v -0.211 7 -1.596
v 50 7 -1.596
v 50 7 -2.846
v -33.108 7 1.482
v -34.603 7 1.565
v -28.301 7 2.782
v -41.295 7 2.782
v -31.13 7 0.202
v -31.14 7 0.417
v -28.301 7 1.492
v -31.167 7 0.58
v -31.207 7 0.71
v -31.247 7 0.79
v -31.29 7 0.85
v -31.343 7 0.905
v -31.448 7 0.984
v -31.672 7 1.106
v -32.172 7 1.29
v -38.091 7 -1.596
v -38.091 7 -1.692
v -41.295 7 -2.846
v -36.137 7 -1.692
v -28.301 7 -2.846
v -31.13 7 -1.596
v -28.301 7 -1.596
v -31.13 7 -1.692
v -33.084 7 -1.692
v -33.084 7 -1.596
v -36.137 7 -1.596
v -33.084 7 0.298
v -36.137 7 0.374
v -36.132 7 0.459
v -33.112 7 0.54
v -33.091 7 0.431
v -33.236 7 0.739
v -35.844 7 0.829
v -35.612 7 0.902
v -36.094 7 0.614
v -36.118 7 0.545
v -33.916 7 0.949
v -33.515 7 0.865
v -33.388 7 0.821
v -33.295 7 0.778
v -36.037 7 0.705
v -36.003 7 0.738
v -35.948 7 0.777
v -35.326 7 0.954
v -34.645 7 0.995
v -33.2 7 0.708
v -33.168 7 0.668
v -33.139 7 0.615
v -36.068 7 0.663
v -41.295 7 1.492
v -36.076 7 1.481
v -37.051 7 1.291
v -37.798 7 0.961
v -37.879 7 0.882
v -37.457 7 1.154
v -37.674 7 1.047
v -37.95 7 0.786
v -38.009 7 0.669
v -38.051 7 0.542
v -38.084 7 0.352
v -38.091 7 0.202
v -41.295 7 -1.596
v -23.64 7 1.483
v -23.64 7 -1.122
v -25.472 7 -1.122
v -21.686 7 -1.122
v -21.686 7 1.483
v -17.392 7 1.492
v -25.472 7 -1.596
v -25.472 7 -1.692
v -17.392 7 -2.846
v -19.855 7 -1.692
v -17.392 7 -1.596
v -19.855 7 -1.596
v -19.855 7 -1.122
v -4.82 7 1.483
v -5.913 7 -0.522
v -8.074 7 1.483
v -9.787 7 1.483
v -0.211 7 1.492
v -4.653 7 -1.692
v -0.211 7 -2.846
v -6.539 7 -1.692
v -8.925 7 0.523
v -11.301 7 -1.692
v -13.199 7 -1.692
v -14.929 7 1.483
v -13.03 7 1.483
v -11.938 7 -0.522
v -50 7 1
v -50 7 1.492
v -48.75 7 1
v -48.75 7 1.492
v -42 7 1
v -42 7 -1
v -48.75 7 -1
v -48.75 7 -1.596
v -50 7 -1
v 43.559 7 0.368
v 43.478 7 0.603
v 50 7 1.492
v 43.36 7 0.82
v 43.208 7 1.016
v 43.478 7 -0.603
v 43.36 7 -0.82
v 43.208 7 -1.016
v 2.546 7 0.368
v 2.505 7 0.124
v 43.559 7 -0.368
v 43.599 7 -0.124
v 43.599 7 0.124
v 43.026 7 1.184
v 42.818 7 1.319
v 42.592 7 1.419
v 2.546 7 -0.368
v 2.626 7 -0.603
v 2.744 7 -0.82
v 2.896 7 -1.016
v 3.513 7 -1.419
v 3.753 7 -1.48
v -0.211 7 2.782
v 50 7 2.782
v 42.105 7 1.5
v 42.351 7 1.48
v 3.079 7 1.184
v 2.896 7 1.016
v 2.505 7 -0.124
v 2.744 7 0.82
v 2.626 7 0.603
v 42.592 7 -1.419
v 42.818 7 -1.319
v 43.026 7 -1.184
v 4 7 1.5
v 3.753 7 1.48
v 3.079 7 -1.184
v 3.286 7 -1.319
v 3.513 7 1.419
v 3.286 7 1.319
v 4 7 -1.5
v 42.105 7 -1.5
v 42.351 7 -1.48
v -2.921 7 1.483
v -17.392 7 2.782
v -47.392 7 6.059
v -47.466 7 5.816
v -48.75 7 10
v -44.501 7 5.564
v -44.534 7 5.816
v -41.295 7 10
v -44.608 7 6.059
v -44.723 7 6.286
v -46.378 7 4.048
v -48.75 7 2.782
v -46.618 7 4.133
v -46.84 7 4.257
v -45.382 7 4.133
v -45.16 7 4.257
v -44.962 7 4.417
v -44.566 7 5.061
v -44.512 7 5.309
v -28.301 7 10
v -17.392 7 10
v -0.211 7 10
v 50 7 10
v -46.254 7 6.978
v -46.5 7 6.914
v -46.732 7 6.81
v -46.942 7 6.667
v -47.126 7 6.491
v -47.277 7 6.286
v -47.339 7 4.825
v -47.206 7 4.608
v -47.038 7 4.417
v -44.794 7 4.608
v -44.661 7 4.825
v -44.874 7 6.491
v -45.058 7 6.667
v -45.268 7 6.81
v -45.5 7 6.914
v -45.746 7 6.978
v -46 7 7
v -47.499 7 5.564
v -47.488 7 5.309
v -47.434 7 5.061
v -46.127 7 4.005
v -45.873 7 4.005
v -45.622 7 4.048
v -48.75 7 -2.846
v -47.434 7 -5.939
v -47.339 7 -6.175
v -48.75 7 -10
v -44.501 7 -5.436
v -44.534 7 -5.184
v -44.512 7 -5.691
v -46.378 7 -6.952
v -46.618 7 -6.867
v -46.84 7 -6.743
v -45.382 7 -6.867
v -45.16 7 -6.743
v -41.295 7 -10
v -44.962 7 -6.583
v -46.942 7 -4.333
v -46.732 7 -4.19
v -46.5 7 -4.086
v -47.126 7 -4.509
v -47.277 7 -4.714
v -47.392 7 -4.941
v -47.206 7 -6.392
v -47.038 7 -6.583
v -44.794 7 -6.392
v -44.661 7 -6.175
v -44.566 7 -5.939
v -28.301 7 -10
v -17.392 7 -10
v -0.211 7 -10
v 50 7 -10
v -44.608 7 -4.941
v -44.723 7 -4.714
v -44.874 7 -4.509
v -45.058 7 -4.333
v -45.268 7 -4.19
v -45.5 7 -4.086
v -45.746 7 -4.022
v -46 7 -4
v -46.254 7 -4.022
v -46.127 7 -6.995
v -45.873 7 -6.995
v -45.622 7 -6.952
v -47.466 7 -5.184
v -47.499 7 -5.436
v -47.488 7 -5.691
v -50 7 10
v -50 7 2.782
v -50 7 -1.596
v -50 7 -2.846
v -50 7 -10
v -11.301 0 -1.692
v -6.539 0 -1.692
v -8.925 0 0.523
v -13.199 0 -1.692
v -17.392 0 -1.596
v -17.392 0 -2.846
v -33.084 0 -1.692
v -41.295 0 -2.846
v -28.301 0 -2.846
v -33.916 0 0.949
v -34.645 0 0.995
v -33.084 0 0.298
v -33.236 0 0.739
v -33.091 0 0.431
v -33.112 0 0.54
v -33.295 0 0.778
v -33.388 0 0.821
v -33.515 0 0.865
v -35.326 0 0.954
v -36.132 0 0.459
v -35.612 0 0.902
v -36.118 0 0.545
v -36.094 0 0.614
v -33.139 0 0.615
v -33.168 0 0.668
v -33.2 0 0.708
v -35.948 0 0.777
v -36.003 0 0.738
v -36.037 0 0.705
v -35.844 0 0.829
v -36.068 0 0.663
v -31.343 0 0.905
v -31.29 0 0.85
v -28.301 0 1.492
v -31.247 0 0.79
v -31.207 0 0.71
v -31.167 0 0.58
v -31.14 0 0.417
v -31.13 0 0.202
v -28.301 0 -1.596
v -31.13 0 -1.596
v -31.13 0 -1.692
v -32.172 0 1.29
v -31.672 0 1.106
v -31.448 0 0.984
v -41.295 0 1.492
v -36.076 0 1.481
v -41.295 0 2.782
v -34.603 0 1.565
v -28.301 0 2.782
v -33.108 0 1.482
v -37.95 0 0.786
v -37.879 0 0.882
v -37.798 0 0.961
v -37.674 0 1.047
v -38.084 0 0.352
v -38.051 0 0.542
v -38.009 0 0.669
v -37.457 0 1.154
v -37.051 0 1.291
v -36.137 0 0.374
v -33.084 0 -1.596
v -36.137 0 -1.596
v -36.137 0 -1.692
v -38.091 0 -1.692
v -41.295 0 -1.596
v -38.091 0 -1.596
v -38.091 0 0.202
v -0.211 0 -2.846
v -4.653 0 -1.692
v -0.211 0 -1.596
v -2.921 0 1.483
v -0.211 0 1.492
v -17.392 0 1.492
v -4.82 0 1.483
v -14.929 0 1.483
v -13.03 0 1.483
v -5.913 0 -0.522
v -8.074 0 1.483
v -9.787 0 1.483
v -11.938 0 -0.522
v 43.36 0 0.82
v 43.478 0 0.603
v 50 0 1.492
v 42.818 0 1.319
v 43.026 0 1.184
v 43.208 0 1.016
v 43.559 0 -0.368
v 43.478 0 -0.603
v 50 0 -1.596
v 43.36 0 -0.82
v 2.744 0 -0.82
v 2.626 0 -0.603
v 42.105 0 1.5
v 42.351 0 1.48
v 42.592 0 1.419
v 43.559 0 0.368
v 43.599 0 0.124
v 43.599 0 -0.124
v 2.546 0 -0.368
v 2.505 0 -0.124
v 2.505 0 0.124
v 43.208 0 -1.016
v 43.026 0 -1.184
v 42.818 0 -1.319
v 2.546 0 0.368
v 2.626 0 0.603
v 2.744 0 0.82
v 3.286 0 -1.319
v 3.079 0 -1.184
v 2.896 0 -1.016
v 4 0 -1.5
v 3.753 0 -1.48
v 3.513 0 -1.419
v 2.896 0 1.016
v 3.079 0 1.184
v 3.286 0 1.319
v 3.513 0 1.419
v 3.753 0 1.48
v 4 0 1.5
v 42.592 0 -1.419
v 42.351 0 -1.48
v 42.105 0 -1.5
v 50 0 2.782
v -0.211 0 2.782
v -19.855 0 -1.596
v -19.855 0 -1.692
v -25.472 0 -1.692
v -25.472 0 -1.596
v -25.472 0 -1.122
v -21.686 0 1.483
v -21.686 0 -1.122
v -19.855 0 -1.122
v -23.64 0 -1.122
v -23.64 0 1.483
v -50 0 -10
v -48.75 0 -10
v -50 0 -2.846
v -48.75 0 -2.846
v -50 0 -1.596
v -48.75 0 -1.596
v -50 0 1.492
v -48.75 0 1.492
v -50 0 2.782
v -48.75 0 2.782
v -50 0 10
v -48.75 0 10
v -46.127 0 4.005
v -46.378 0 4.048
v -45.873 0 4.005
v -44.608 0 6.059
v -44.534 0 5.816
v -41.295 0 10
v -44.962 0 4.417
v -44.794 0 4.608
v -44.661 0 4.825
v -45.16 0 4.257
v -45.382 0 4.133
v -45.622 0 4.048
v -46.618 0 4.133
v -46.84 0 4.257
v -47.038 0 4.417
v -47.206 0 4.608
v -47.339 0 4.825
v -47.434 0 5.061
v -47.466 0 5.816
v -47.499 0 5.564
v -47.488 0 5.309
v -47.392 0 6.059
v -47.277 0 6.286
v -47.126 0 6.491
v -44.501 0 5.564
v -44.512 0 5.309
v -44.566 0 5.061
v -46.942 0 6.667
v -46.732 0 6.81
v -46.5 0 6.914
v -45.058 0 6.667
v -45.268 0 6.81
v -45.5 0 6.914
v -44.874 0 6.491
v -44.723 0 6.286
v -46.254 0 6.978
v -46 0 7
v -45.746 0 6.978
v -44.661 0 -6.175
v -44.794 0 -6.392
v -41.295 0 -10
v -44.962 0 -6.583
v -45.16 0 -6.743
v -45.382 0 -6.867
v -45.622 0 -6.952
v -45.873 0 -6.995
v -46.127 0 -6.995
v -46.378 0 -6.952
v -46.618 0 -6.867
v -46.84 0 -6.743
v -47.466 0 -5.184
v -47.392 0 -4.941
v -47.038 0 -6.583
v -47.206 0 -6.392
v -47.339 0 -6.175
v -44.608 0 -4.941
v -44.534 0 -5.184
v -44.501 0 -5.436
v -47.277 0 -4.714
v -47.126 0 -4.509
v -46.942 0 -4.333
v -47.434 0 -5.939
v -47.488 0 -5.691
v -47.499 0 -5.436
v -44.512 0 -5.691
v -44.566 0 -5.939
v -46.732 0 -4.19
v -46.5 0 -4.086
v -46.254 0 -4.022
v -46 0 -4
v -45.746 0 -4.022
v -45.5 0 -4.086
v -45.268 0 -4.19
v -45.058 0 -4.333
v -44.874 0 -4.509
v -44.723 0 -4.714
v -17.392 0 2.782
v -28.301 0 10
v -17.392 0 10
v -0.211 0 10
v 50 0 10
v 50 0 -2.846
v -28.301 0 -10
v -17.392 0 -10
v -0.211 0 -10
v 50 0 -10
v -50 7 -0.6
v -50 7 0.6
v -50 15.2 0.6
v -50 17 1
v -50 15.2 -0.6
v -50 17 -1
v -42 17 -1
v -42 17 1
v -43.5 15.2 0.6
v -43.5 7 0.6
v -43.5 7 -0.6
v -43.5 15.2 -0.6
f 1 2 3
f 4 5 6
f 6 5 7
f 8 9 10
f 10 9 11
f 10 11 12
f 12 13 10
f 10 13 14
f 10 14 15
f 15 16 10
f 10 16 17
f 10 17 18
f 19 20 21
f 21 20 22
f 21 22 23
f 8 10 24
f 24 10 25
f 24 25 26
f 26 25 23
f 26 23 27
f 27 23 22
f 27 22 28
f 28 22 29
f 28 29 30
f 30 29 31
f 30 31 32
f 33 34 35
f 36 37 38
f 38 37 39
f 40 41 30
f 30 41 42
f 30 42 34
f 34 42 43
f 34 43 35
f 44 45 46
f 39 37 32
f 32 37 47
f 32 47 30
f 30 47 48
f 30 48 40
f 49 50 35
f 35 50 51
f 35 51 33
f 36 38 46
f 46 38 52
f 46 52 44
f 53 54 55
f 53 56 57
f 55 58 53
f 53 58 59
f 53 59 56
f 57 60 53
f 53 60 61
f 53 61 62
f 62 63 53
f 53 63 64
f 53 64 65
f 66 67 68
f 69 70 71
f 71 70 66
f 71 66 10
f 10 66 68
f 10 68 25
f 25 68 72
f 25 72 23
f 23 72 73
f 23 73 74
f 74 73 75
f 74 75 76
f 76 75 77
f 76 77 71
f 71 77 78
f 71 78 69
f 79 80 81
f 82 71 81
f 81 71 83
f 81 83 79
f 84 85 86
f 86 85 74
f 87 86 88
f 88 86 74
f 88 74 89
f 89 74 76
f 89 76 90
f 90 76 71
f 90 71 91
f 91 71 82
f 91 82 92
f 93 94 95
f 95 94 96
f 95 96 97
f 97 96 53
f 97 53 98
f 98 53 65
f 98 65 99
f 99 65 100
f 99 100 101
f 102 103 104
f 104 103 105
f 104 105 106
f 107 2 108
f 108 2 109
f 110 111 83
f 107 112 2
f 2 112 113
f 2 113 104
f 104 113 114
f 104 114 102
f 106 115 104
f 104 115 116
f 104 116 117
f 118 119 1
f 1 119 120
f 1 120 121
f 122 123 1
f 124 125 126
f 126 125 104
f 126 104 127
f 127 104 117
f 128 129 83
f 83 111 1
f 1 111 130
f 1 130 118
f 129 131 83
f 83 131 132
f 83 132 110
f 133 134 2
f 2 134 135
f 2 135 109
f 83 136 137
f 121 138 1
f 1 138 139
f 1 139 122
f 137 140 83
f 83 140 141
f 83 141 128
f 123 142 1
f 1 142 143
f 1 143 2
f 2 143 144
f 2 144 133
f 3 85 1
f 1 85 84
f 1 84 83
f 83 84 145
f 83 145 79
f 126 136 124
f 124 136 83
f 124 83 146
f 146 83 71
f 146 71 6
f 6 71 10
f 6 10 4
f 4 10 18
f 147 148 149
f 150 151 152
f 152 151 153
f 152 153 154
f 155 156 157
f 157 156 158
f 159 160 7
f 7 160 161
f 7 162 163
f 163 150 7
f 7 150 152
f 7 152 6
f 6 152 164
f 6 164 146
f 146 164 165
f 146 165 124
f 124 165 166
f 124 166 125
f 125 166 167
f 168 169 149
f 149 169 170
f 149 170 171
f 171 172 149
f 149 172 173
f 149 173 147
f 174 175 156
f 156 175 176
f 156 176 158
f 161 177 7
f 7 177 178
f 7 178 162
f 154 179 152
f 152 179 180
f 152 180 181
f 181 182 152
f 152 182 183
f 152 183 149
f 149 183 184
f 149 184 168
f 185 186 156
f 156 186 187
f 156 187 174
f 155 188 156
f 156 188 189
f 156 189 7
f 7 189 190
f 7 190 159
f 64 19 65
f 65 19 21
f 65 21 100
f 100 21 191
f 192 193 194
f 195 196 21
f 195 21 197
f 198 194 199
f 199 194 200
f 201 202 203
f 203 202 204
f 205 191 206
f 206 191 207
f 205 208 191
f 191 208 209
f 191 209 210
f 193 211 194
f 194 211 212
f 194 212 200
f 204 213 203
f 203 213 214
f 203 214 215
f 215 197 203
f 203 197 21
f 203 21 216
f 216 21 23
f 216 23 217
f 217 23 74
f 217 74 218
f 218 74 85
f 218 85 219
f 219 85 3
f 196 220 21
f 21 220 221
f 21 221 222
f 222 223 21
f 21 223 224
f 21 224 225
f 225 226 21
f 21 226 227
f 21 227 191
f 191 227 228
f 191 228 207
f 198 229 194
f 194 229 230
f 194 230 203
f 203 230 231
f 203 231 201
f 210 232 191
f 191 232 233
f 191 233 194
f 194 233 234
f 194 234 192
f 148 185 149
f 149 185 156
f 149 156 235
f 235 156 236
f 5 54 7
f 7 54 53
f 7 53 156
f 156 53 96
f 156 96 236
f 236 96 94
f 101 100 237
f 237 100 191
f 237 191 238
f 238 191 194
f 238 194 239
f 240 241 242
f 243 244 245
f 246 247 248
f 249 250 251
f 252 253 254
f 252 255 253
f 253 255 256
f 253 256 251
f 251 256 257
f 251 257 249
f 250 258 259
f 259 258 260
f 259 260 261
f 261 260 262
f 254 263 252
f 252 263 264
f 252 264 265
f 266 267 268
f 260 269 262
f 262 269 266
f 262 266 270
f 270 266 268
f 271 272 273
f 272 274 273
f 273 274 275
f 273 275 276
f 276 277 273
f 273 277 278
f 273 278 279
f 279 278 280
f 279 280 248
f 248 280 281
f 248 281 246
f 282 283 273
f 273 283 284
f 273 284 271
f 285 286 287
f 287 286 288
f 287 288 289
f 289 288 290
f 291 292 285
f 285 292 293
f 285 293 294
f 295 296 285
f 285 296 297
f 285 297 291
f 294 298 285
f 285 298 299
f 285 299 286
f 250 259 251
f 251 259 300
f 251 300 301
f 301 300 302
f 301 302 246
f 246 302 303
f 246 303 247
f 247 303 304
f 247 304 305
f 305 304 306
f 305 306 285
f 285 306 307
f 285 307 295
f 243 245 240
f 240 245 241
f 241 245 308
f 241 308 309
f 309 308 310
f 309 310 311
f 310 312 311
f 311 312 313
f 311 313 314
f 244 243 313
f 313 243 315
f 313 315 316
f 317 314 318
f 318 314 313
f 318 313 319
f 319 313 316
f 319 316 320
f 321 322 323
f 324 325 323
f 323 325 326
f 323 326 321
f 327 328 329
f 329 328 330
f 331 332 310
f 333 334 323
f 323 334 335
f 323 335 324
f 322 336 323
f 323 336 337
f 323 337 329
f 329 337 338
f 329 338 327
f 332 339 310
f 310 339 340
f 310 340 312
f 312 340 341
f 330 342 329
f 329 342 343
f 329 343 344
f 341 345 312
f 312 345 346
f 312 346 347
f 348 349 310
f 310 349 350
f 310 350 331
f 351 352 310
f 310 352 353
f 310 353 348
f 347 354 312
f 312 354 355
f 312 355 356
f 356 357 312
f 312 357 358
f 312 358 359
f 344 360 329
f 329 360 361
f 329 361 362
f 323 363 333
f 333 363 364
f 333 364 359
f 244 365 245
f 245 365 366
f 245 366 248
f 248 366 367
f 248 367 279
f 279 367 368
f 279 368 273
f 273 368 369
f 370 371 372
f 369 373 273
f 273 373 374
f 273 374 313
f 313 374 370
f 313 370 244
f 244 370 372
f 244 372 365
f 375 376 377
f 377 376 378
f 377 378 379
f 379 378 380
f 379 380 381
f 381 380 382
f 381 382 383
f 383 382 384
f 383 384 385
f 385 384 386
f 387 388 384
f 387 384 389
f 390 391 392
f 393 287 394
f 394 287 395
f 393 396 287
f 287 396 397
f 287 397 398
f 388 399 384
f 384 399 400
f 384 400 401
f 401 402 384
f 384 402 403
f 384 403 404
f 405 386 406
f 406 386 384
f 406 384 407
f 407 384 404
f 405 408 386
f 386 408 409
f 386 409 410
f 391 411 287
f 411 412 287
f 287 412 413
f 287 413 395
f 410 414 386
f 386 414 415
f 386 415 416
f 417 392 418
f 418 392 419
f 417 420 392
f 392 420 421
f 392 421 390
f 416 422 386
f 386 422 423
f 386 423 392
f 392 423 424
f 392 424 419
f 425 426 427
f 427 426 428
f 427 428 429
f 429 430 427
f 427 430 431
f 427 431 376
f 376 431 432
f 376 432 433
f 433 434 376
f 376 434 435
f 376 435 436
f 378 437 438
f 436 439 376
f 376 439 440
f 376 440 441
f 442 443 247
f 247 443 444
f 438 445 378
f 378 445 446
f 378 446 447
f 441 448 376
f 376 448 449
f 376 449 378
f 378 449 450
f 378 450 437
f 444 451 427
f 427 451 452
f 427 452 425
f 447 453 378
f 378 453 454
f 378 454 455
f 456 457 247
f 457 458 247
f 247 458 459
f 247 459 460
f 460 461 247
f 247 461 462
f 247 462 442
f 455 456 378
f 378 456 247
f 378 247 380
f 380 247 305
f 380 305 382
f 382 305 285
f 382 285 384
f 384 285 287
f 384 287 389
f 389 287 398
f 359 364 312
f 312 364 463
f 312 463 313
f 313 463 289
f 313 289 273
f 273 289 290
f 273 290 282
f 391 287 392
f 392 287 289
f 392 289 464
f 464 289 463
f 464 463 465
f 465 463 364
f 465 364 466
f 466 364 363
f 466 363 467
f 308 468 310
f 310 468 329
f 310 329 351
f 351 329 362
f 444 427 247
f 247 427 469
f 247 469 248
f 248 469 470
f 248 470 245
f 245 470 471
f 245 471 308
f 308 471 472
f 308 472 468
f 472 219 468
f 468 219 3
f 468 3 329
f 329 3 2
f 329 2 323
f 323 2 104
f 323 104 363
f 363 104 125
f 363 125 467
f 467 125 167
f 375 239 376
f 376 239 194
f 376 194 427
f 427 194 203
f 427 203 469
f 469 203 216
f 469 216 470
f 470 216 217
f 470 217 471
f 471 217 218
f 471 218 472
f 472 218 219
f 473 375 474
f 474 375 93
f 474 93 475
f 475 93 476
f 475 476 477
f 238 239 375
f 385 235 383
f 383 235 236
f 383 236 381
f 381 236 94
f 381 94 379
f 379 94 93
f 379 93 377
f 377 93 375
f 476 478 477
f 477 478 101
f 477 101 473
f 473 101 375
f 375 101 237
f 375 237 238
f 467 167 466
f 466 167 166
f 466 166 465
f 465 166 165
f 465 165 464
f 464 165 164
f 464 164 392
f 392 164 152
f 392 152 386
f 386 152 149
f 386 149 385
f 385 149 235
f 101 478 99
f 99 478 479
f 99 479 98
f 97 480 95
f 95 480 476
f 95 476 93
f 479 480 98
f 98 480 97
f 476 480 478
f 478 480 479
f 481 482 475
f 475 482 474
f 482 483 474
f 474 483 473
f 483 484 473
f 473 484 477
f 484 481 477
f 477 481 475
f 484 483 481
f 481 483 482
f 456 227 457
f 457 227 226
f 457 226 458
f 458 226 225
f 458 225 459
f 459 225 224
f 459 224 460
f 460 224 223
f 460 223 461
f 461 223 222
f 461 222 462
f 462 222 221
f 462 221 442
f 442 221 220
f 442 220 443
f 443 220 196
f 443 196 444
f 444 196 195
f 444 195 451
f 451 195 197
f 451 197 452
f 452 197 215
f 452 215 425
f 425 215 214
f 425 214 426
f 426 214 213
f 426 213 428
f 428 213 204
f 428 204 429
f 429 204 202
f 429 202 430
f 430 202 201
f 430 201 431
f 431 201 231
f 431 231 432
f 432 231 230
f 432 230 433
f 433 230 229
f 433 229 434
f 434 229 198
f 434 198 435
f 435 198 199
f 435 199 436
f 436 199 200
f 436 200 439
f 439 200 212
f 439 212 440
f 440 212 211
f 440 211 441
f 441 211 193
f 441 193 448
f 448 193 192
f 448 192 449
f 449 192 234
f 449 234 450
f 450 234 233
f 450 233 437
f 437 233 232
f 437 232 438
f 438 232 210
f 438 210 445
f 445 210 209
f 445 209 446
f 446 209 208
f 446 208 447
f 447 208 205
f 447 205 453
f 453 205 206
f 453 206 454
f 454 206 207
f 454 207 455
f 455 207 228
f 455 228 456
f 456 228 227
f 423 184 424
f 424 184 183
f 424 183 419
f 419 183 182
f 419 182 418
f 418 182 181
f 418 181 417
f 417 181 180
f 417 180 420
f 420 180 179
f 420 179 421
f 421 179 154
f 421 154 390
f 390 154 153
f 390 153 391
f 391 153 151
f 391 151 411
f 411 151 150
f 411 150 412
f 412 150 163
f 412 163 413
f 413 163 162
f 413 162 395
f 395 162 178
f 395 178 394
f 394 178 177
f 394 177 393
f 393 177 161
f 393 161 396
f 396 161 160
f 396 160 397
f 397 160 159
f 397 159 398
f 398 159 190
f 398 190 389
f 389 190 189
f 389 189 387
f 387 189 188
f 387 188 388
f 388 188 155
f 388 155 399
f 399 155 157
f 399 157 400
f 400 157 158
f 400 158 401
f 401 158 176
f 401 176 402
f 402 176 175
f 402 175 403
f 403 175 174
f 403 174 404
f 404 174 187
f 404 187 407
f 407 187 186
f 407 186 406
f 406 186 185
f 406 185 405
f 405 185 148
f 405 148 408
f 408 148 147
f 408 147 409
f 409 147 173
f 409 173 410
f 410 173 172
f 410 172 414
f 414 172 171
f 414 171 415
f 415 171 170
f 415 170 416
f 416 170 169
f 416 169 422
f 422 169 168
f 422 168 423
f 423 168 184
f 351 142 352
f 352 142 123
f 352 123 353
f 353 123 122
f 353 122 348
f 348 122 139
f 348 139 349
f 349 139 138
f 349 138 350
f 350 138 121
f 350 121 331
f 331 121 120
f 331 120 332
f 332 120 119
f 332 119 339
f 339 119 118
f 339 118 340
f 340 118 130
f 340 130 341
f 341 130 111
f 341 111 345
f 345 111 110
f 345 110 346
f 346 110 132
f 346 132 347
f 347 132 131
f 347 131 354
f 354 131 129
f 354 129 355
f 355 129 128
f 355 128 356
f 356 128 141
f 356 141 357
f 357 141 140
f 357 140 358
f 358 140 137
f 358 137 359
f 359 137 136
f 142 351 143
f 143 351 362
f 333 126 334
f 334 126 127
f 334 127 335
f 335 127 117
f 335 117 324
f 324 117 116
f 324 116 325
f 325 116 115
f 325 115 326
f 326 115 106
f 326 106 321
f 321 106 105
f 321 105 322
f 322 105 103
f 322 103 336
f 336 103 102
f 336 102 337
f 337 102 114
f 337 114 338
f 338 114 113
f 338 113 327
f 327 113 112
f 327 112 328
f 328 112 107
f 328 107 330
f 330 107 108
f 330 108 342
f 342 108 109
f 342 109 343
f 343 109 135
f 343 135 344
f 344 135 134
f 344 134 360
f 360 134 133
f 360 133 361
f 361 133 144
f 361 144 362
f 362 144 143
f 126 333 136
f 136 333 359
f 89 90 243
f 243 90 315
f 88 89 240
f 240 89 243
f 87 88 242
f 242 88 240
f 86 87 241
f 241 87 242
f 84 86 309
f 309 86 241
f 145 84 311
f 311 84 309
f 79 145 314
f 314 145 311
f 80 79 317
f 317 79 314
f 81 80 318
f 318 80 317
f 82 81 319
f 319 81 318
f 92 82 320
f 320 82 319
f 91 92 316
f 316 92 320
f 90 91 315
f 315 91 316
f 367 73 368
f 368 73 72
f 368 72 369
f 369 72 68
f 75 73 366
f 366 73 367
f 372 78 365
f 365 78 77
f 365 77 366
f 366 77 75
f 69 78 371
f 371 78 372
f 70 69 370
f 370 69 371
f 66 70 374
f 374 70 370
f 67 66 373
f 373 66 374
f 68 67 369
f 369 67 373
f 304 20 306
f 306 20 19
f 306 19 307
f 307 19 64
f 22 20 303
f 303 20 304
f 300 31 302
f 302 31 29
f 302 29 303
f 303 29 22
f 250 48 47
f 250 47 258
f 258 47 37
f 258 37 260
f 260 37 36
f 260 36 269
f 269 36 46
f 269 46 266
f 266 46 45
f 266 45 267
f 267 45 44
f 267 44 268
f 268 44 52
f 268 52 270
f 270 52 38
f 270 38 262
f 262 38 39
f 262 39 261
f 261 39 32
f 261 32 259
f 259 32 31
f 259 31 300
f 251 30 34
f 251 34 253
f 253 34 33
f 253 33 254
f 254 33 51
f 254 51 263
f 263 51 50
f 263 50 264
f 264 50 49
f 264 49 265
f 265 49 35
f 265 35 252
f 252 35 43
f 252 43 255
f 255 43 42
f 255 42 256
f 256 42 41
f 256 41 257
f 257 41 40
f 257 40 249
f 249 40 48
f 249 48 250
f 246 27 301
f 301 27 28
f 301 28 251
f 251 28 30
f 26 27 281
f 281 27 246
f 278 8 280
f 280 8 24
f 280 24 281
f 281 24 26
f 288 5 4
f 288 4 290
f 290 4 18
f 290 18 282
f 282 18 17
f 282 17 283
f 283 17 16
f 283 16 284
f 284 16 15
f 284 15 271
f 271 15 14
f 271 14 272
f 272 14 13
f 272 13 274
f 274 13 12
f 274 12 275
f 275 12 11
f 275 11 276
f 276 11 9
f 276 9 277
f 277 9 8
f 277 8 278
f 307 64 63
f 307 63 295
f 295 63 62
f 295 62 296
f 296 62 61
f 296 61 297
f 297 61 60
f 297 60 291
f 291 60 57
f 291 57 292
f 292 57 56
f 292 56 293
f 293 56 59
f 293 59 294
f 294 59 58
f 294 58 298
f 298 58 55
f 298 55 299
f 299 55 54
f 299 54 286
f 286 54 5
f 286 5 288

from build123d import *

# Parameters (mm, degrees)
SKETCH1_W           = 100
SKETCH1_H           = 20
BOSS_EXTRUDE1_DEPTH = 7
SKETCH2_W           = 8
SKETCH2_H           = 2
BOSS_EXTRUDE2_DEPTH = 10
SKETCH3_W           = 1.2
SKETCH3_H           = 8.2
CUT_EXTRUDE1_DEPTH  = 6.5
SKETCH4_R           = 1.5
CUT_EXTRUDE2_DEPTH  = 16.5
CUT_EXTRUDE3_DEPTH  = 16.5
CUT_EXTRUDE4_DEPTH  = 16.5


with BuildPart() as part:
    # Sketch1 → Boss-Extrude1 (new body)
    with BuildSketch(Plane(origin=(0, 0, 0), x_dir=(1, 0, 0), z_dir=(0, 1, 0))):
        Rectangle(SKETCH1_W, SKETCH1_H)
    extrude(amount=BOSS_EXTRUDE1_DEPTH)

    # Sketch2 → Boss-Extrude2 (add)
    with BuildSketch(Plane(origin=(0, 7, 0), x_dir=(1, 0, 0), z_dir=(0, 1, 0))):
        with Locations((-46, 0)):
            Rectangle(SKETCH2_W, SKETCH2_H)
    extrude(amount=BOSS_EXTRUDE2_DEPTH)

    # Sketch3 → Cut-Extrude1 (cut)
    with BuildSketch(Plane.ZY.offset(50)):
        with Locations((0, 11.1)):
            Rectangle(SKETCH3_W, SKETCH3_H)
    extrude(amount=-CUT_EXTRUDE1_DEPTH, mode=Mode.SUBTRACT)

    # Sketch4 → Cut-Extrude2 (cut)
    with BuildSketch(Plane(origin=(0, 7, 0), x_dir=(1, 0, 0), z_dir=(0, 1, 0))):
        with Locations(Location((-46, -5.5, 0), (0, 0, 270))):
            Circle(SKETCH4_R)
        with Locations(Location((-46, 5.5, 0), (0, 0, 270))):
            Circle(SKETCH4_R)
    extrude(amount=-CUT_EXTRUDE2_DEPTH, mode=Mode.SUBTRACT)

    # Sketch5 → Cut-Extrude3 (cut)
    with BuildSketch(Plane(origin=(0, 7, 0), x_dir=(1, 0, 0), z_dir=(0, 1, 0))):
        with BuildLine():
            Line((4, 1.5), (42.104534382, 1.5))
            ThreePointArc((42.104534382, 1.5), (43.604534382, 0), (42.104534382, -1.5))
            Line((42.104534382, -1.5), (4, -1.5))
            ThreePointArc((4, -1.5), (2.5, 0), (4, 1.5))
        make_face()
    extrude(amount=-CUT_EXTRUDE3_DEPTH, mode=Mode.SUBTRACT)

    # Sketch6 → Cut-Extrude4 (cut)
    with BuildSketch(Plane(origin=(0, 7, 0), x_dir=(1, 0, 0), z_dir=(0, 1, 0))):
        with BuildLine():
            Line((-38.090566617, 1.691624874), (-36.136720463, 1.691624874))
            Line((-36.136720463, 1.691624874), (-36.136720463, -0.374160382))
            add(Edge.make_bspline(
                [(-36.136720463, -0.374160382), (-36.136222921, -0.395596016), (-36.135259527, -0.437102045), (-36.128176252, -0.496659376), (-36.117267464, -0.551720243), (-36.099494327, -0.601255913), (-36.079050673, -0.647053262), (-36.052579871, -0.687323798), (-36.021884122, -0.723028206), (-35.985294073, -0.753165432), (-35.943444242, -0.779987134), (-35.896520116, -0.806221032), (-35.842987125, -0.830109847), (-35.783305155, -0.852165702), (-35.717831736, -0.873864468), (-35.646135273, -0.894146598), (-35.56817414, -0.912378535), (-35.484446285, -0.929627894), (-35.395305953, -0.944570047), (-35.30137293, -0.958050388), (-35.202951382, -0.969319491), (-35.100128875, -0.979013349), (-34.99279273, -0.985787257), (-34.881047838, -0.990848531), (-34.764636845, -0.99407686), (-34.685542294, -0.99463124), (-34.645259125, -0.994913587)],
                knots=[0, 0, 0, 0, 0.856800499, 1.659031242, 2.395514242, 3.095174505, 3.758838491, 4.395989299, 5.014775861, 5.634490662, 6.283374298, 7.000480573, 7.781977864, 8.624273548, 9.543693618, 10.539207642, 11.602158877, 12.744227547, 13.956608171, 15.215308399, 16.537999948, 17.91707144, 19.344177482, 20.837586847, 22.389370407, 24, 24, 24, 24], degree=3))
            add(Edge.make_bspline(
                [(-34.645259125, -0.994913587), (-34.602644304, -0.994619773), (-34.518887139, -0.994042296), (-34.395467432, -0.990967311), (-34.276493626, -0.985329628), (-34.162218877, -0.976931814), (-34.05233768, -0.966910998), (-33.947109184, -0.954375876), (-33.846232554, -0.938820672), (-33.750290053, -0.922073681), (-33.660190511, -0.902955674), (-33.576791977, -0.882732471), (-33.500569827, -0.861280306), (-33.431693571, -0.838617434), (-33.370513532, -0.814205685), (-33.315903174, -0.789823701), (-33.268859004, -0.763186911), (-33.228027111, -0.734837962), (-33.193111029, -0.702177186), (-33.163728858, -0.66337951), (-33.138706328, -0.618201192), (-33.118757714, -0.566526559), (-33.102800885, -0.508586363), (-33.091478933, -0.444294518), (-33.085510067, -0.373424974), (-33.084409099, -0.324137339), (-33.083835848, -0.298474285)],
                knots=[0, 0, 0, 0, 1.588209429, 3.121541213, 4.600766171, 6.026677194, 7.391541964, 8.712617744, 9.975319141, 11.1950937, 12.341822282, 13.407306122, 14.392766533, 15.292249026, 16.108021068, 16.846936864, 17.51923127, 18.119926431, 18.695626892, 19.292987148, 19.926115191, 20.614241253, 21.352269412, 22.162859459, 23.043438806, 24, 24, 24, 24], degree=3))
            Line((-33.083835848, -0.298474285), (-33.083835848, 1.691624874))
            Line((-33.083835848, 1.691624874), (-31.129989694, 1.691624874))
            Line((-31.129989694, 1.691624874), (-31.129989694, -0.202435623))
            add(Edge.make_bspline(
                [(-31.129989694, -0.202435623), (-31.130396555, -0.240823825), (-31.131179852, -0.314729458), (-31.139375273, -0.420958153), (-31.153266871, -0.518056089), (-31.172113358, -0.60591195), (-31.195776106, -0.685102071), (-31.2265614, -0.75468246), (-31.261807566, -0.815796798), (-31.304224039, -0.868565412), (-31.35433564, -0.915957753), (-31.413244095, -0.961750023), (-31.482378453, -1.006475356), (-31.560729801, -1.051863818), (-31.649567417, -1.096031718), (-31.747973897, -1.140446708), (-31.856395889, -1.184349919), (-31.973869243, -1.226902741), (-32.098340547, -1.26900542), (-32.228765844, -1.30740489), (-32.363828076, -1.343760755), (-32.503536352, -1.37752487), (-32.648066029, -1.407754368), (-32.797051714, -1.436069214), (-32.950903144, -1.460434965), (-33.109645942, -1.483126236), (-33.274098084, -1.501657516), (-33.444488933, -1.519283924), (-33.621592617, -1.533001036), (-33.805232974, -1.544180789), (-33.995384773, -1.554126205), (-34.192171214, -1.560117111), (-34.395499456, -1.564098136), (-34.533317979, -1.564553974), (-34.603281962, -1.564785382)],
                knots=[0, 0, 0, 0, 0.891995564, 1.717285311, 2.473985171, 3.169784855, 3.80406141, 4.390865003, 4.934193818, 5.438959715, 5.958162933, 6.533752086, 7.170549563, 7.870280448, 8.637066367, 9.475009947, 10.378954102, 11.354689114, 12.378321379, 13.432112796, 14.513721255, 15.6286606, 16.771808402, 17.944919068, 19.152624798, 20.3914954, 21.671212985, 22.998319501, 24.372293643, 25.798941139, 27.273951603, 28.797175972, 30.374076868, 32, 32, 32, 32], degree=3))
            add(Edge.make_bspline(
                [(-34.603281962, -1.564785382), (-34.694874664, -1.564329464), (-34.875124498, -1.563432241), (-35.141015791, -1.555385336), (-35.398042018, -1.543673109), (-35.645950763, -1.52656085), (-35.884746849, -1.504366425), (-36.114450133, -1.477165199), (-36.335189293, -1.444656968), (-36.546015909, -1.408065912), (-36.74501405, -1.367761314), (-36.92986633, -1.323831929), (-37.100308606, -1.278213772), (-37.255996039, -1.230308582), (-37.396994074, -1.179518335), (-37.523325041, -1.126403766), (-37.634981713, -1.070496906), (-37.733587124, -1.012166957), (-37.819089301, -0.946207757), (-37.892334947, -0.870525317), (-37.954025458, -0.784041833), (-38.004293928, -0.687432955), (-38.043166993, -0.580459305), (-38.07089232, -0.463535136), (-38.087398684, -0.336257042), (-38.089486381, -0.248067484), (-38.090566617, -0.202435623)],
                knots=[0, 0, 0, 0, 1.595870397, 3.140592737, 4.634612613, 6.078715518, 7.46998073, 8.812936474, 10.108520143, 11.357136621, 12.540896352, 13.645651431, 14.667177183, 15.61474762, 16.482960095, 17.277467721, 18.001045958, 18.65737072, 19.270672542, 19.876756492, 20.485670631, 21.115189159, 21.768481852, 22.463746561, 23.205097451, 24, 24, 24, 24], degree=3))
            Line((-38.090566617, -0.202435623), (-38.090566617, 1.691624874))
        make_face()
        Polygon((-25.471976873, 1.691624874), (-19.854669181, 1.691624874), (-19.854669181, 1.121753079), (-21.68639995, 1.121753079), (-21.68639995, -1.483375126), (-23.640246104, -1.483375126), (-23.640246104, 1.121753079), (-25.471976873, 1.121753079), align=None)
        Polygon((-13.19938072, 1.691624874), (-11.300868099, 1.691624874), (-8.925342258, -0.522988507), (-6.539004117, 1.691624874), (-4.653211849, 1.691624874), (-2.921335848, -1.483375126), (-4.819848468, -1.483375126), (-5.913162771, 0.521988456), (-8.074350671, -1.483375126), (-9.786510127, -1.483375126), (-11.937521745, 0.521988456), (-13.03020003, -1.483375126), (-14.929348668, -1.483375126), align=None)
    extrude(amount=-CUT_EXTRUDE4_DEPTH, mode=Mode.SUBTRACT)


solid = part.part
